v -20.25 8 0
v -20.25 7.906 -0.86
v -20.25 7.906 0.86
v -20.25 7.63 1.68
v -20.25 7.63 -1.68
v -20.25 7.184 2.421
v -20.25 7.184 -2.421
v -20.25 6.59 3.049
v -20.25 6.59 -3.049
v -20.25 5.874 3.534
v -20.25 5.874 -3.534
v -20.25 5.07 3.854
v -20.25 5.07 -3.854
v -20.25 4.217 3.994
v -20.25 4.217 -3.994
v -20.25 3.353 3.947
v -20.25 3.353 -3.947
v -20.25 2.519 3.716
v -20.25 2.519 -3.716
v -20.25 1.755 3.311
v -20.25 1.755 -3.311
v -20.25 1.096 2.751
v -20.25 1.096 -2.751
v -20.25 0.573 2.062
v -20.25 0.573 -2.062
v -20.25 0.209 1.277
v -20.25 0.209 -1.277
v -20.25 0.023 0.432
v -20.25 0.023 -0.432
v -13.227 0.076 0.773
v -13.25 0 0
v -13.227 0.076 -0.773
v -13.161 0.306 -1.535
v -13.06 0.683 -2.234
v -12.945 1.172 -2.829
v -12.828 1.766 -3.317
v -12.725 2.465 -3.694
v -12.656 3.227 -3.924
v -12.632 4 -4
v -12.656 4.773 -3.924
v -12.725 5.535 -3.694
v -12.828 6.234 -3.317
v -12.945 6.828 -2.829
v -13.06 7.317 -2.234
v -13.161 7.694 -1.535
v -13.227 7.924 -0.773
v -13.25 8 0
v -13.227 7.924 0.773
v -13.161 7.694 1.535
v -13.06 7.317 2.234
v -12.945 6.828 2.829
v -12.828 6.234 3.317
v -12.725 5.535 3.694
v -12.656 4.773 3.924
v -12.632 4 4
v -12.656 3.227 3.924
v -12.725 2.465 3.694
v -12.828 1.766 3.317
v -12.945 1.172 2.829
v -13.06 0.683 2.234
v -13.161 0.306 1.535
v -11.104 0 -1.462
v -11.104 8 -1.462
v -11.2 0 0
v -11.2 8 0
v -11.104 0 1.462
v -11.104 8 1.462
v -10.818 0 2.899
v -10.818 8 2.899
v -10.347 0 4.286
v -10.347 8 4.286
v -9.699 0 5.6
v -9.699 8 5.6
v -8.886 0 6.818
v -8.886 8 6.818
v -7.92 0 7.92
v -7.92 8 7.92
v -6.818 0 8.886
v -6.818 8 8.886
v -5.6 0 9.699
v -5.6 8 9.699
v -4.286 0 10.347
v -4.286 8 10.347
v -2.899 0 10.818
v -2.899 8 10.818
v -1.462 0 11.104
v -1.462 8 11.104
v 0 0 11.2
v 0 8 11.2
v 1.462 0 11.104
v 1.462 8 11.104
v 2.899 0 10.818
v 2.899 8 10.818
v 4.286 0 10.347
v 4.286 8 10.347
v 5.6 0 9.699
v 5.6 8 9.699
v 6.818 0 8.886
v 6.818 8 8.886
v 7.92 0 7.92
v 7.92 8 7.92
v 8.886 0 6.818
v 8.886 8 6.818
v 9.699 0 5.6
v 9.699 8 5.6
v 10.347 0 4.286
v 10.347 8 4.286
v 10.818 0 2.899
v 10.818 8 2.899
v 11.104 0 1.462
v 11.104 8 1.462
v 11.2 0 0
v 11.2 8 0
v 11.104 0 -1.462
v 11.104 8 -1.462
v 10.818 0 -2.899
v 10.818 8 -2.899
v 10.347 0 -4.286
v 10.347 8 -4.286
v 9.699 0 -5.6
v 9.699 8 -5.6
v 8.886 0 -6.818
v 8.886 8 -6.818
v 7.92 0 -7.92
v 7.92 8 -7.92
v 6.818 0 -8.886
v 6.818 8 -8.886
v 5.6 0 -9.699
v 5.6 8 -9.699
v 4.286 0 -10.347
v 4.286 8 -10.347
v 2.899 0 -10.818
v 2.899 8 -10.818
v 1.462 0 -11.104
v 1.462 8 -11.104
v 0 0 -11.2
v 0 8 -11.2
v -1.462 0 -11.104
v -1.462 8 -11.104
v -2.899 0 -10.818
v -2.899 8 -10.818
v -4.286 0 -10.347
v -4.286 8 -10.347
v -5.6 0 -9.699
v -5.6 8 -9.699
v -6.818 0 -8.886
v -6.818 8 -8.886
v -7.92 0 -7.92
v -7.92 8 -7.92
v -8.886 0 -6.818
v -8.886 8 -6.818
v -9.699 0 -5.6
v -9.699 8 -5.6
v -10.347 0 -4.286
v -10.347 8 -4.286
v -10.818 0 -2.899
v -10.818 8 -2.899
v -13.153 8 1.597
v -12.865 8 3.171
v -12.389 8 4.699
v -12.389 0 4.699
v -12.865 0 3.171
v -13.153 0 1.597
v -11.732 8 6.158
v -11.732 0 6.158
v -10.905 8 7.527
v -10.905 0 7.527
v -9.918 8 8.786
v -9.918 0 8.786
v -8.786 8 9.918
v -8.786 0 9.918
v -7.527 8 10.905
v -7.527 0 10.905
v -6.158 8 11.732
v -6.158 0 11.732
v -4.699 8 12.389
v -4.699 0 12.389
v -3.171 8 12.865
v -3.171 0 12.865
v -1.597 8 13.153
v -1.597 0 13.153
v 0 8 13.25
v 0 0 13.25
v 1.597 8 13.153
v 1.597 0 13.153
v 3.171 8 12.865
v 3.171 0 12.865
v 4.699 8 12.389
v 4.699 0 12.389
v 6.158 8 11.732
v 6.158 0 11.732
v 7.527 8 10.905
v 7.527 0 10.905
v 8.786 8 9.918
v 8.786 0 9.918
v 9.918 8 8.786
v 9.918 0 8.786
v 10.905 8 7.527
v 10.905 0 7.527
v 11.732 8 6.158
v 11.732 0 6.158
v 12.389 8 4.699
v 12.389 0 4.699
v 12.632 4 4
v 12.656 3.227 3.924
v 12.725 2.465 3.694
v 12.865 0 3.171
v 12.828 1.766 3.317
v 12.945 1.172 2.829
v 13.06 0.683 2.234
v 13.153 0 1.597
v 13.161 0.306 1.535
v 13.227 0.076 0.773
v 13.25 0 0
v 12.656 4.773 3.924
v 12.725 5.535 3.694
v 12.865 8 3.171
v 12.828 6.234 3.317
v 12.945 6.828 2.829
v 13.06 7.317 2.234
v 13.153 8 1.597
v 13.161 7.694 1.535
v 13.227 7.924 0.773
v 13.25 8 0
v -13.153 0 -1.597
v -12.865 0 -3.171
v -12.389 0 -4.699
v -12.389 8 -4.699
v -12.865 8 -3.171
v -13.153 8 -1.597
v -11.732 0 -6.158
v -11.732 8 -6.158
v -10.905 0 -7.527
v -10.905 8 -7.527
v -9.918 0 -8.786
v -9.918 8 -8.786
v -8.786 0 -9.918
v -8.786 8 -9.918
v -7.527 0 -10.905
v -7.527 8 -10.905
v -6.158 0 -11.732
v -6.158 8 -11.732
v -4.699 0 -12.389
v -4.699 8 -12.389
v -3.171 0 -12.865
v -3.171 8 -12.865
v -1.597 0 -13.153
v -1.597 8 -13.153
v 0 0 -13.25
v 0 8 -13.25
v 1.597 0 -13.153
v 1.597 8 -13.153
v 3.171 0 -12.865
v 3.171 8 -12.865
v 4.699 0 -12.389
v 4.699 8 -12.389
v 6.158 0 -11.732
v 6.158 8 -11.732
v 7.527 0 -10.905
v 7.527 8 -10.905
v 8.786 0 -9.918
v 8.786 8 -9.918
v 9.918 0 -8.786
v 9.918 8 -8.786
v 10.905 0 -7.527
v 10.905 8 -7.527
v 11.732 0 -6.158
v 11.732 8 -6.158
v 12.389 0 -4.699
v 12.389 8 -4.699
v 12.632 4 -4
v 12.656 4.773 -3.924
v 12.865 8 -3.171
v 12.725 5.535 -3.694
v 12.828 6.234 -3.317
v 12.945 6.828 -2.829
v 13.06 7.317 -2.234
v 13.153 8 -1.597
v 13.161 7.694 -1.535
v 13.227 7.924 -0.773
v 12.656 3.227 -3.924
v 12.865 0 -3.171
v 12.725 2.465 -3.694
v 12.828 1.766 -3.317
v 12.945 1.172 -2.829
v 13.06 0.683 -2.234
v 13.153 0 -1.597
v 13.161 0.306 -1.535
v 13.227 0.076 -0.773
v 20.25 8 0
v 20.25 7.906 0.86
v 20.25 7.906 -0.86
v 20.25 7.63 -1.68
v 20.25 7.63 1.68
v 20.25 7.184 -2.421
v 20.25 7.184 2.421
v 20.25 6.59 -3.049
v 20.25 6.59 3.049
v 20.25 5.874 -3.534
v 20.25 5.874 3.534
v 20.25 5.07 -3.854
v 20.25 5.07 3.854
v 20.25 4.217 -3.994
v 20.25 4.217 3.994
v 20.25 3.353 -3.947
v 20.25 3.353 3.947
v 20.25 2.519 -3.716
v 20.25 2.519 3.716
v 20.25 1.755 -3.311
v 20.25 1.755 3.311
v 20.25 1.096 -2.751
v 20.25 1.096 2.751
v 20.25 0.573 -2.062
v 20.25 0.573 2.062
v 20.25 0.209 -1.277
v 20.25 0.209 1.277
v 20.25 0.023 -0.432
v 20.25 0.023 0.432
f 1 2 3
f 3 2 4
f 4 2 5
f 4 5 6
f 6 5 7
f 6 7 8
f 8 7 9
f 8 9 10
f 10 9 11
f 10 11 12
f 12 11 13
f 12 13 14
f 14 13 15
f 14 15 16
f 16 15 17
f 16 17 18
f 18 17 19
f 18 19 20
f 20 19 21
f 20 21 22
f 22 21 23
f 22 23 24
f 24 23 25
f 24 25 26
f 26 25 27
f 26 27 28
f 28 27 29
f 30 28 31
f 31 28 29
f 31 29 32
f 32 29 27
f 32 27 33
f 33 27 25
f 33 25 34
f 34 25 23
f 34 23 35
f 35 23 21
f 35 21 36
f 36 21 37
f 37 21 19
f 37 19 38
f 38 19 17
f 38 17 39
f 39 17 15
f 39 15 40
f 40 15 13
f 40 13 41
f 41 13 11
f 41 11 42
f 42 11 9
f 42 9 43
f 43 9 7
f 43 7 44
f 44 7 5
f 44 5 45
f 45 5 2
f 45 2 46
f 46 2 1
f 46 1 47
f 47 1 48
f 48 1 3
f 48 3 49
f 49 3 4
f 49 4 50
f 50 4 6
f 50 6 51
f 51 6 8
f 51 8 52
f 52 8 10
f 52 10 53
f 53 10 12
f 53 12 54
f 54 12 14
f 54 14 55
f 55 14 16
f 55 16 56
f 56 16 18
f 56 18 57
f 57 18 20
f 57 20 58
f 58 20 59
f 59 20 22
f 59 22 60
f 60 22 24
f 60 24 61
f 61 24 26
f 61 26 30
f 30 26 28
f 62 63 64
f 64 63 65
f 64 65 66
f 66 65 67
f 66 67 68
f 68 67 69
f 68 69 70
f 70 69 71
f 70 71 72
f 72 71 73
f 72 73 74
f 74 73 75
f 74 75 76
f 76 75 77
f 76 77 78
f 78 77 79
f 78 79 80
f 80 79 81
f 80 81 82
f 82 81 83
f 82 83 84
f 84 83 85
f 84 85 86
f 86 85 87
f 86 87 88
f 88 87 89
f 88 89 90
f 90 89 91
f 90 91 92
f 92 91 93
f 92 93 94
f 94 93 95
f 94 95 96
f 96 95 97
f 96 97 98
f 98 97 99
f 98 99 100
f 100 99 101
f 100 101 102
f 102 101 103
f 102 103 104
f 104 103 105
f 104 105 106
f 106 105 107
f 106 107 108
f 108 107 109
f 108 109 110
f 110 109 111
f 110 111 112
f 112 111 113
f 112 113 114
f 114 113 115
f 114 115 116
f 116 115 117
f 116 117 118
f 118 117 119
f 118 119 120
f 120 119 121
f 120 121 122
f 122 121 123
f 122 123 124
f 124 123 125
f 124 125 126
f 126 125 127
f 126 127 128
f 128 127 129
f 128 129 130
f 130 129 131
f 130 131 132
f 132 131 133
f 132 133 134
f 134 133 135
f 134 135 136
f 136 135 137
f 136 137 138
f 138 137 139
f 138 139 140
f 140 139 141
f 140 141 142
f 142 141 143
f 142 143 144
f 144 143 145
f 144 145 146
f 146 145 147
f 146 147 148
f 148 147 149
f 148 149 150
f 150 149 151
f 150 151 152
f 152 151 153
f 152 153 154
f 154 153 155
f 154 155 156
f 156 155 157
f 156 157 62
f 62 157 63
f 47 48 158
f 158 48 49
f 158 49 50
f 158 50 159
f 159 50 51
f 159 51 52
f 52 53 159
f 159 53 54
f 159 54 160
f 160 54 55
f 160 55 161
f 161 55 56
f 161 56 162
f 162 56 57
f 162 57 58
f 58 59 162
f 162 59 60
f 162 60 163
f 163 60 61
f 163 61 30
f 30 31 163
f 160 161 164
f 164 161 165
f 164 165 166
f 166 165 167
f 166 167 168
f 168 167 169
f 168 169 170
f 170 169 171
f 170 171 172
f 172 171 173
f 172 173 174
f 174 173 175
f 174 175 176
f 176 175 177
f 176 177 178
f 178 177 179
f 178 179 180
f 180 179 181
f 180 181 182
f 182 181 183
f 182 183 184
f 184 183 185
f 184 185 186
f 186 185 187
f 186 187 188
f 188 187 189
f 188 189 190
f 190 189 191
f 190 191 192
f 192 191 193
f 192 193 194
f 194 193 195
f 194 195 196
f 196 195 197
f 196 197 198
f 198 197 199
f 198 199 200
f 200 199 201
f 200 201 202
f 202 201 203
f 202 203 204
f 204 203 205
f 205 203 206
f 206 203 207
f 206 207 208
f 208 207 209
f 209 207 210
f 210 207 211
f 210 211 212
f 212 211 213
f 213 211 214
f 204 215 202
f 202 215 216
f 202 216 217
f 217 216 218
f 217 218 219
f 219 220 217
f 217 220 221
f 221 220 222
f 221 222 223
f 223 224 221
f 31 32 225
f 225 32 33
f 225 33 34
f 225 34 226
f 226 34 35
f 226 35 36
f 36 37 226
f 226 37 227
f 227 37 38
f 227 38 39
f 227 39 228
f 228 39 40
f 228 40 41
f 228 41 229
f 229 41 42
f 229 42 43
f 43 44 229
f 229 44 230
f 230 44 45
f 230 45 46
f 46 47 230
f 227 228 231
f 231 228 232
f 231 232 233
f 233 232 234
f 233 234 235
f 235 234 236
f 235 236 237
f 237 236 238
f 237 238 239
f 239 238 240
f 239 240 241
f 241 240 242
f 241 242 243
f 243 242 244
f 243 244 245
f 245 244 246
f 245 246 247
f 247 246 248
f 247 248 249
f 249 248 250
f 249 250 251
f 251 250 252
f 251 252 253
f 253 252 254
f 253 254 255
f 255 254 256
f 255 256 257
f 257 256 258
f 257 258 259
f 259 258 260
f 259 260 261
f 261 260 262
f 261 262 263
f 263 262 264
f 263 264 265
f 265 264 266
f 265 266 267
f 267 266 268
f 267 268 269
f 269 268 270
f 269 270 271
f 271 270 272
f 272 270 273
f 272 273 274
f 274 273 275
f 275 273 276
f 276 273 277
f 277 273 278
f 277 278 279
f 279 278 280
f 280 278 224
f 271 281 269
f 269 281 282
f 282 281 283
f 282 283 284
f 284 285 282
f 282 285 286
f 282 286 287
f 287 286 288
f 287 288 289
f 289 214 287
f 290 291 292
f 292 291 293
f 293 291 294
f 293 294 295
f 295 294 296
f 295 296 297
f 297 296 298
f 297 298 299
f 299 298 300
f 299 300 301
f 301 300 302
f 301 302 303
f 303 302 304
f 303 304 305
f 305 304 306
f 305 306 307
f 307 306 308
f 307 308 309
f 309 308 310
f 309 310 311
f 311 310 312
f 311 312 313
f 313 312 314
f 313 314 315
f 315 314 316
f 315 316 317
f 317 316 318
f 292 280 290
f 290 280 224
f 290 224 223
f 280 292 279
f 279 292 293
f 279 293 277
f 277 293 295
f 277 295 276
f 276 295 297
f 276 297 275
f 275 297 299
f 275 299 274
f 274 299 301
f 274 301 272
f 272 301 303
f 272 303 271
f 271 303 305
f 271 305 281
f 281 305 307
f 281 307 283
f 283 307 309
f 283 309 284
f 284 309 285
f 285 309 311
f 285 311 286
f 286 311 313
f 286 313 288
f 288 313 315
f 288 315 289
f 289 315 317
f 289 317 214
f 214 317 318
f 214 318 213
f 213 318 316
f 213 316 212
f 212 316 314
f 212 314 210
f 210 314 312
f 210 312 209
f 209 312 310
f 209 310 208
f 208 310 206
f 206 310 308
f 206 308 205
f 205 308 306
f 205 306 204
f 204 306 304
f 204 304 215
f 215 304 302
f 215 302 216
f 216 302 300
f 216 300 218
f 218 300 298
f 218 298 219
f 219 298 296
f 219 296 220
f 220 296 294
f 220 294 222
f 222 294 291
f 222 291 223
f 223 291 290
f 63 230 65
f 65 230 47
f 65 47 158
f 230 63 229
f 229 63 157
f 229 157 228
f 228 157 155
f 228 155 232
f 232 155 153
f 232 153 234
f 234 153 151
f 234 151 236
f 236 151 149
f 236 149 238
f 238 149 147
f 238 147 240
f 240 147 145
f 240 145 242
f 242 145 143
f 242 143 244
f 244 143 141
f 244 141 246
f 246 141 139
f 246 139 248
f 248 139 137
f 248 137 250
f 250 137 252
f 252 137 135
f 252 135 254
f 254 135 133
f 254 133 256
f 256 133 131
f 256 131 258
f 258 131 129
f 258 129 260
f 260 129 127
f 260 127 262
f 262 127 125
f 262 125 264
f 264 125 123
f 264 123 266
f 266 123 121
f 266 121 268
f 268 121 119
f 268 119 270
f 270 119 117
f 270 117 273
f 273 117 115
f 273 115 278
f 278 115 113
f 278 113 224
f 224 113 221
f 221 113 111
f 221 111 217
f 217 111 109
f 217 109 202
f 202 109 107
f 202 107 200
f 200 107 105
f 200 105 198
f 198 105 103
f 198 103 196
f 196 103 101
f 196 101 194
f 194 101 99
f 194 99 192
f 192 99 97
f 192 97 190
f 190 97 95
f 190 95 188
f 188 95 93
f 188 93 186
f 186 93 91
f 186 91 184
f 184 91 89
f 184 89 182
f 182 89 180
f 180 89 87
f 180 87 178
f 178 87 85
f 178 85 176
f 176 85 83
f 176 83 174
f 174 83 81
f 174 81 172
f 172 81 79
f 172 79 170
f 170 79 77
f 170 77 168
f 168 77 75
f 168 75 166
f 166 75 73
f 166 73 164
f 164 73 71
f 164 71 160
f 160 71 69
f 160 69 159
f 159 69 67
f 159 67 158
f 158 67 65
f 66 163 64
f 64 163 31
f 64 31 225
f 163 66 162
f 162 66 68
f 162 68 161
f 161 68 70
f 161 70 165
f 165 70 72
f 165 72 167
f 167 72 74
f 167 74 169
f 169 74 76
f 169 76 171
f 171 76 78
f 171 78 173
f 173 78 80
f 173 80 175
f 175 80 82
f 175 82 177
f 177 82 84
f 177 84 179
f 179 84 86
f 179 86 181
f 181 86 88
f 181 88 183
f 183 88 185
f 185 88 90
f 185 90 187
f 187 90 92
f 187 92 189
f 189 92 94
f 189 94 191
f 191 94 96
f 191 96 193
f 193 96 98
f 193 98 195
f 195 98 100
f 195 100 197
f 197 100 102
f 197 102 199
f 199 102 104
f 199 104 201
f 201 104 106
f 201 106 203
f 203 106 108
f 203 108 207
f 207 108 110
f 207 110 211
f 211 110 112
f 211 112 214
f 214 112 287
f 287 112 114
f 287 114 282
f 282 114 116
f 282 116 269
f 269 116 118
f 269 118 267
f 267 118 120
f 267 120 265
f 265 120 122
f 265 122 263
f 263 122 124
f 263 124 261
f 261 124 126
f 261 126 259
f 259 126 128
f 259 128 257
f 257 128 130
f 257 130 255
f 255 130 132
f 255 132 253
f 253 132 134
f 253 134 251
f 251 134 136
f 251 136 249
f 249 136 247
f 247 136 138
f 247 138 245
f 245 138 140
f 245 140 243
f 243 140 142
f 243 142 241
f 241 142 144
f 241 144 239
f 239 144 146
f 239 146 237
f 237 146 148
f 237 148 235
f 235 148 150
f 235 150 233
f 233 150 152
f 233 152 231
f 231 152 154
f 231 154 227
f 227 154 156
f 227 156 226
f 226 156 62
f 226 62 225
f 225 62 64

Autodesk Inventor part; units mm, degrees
ref_plane "YZ Plane" through (0, 0, 0) normal (1, 0, 0) x (0, 1, 0)
ref_plane "XZ Plane" through (0, 0, 0) normal (0, 1, 0) x (-1, 0, 0)
sketch "Sketch6" plane through (0, 0, 0) normal (0, 1, 0) x (-1, 0, 0)
  circle A0 centre (0, 0) radius 4
  circle A1 centre (0, 0) radius 11.2
  circle A2 centre (0, 0) radius 14
  circle A3 centre (0, 0) radius 13.25
  line L0 (4, 13.4164) -> (-4, 13.4164)
  line L1 (19.6, 0) -> (-19.6, 0) projected
  point P0 (13.25, 0)
  point P1 (-13.25, 0)
  point P2 (-14, 0)
  point P3 (14, 0)
  dimension "d13" = 8
  dimension "d14" = 22.4
  dimension "d15" = 28
  dimension "d16" = 26.5
  dimension "d17" = 8
extrude "Extrusion7" add sketch "Sketch6" along normal blind 8 contours L1 A3 A1 | A1 L1 A3
sketch "Sketch9" plane through (0, 8, 0) normal (0, 1, 0) x (1, 0, 0)
  circle A0 centre (0, 0) radius 13.25 projected
  line L0 (-18.55, 0) -> (18.55, 0) projected
  point P0 (13.25, 0)
ref_plane "Work Plane3" through (13.25, 8, 0) normal (1, 0, 0) x (0, 1, 0)
sketch "Sketch10" plane through (13.25, 8, 0) normal (1, 0, 0) x (0, 1, 0)
  line L0 (-9.6, 0) -> (1.6, 0) projected
  line L1 (-9.6, 0) -> (1.6, 0) projected
  line L2 (-8, 13.25) -> (0, 13.25) projected
  line L3 (-8, -13.25) -> (0, -13.25) projected
  line L4 (0, -13.25) -> (0, 13.25) projected
  line L5 (-8, -13.25) -> (-8, 13.25) projected
  line L6 (0, -13.25) -> (-8, 13.25)
  circle A0 centre (-4, 0) radius 4
  point P0 (-8, 0)
  dimension "d30" = 8
extrude "Extrusion8" add sketch "Sketch10" against normal up to surface contours A0 L6 L0 | L0 L6 A0 | L6 A0 L0 | L0 A0 L6
extrude "Extrusion9" add sketch "Sketch10" along normal blind 7 contours A0 L6 L0 | L0 L6 A0 | L6 A0 L0 | L0 A0 L6
pattern_circular "Circular Pattern3" count 2 over 360 about axis through (0, 0, 0) along (0, 1, 0) of "Extrusion8", "Extrusion9"
properties part number "anillo central"
